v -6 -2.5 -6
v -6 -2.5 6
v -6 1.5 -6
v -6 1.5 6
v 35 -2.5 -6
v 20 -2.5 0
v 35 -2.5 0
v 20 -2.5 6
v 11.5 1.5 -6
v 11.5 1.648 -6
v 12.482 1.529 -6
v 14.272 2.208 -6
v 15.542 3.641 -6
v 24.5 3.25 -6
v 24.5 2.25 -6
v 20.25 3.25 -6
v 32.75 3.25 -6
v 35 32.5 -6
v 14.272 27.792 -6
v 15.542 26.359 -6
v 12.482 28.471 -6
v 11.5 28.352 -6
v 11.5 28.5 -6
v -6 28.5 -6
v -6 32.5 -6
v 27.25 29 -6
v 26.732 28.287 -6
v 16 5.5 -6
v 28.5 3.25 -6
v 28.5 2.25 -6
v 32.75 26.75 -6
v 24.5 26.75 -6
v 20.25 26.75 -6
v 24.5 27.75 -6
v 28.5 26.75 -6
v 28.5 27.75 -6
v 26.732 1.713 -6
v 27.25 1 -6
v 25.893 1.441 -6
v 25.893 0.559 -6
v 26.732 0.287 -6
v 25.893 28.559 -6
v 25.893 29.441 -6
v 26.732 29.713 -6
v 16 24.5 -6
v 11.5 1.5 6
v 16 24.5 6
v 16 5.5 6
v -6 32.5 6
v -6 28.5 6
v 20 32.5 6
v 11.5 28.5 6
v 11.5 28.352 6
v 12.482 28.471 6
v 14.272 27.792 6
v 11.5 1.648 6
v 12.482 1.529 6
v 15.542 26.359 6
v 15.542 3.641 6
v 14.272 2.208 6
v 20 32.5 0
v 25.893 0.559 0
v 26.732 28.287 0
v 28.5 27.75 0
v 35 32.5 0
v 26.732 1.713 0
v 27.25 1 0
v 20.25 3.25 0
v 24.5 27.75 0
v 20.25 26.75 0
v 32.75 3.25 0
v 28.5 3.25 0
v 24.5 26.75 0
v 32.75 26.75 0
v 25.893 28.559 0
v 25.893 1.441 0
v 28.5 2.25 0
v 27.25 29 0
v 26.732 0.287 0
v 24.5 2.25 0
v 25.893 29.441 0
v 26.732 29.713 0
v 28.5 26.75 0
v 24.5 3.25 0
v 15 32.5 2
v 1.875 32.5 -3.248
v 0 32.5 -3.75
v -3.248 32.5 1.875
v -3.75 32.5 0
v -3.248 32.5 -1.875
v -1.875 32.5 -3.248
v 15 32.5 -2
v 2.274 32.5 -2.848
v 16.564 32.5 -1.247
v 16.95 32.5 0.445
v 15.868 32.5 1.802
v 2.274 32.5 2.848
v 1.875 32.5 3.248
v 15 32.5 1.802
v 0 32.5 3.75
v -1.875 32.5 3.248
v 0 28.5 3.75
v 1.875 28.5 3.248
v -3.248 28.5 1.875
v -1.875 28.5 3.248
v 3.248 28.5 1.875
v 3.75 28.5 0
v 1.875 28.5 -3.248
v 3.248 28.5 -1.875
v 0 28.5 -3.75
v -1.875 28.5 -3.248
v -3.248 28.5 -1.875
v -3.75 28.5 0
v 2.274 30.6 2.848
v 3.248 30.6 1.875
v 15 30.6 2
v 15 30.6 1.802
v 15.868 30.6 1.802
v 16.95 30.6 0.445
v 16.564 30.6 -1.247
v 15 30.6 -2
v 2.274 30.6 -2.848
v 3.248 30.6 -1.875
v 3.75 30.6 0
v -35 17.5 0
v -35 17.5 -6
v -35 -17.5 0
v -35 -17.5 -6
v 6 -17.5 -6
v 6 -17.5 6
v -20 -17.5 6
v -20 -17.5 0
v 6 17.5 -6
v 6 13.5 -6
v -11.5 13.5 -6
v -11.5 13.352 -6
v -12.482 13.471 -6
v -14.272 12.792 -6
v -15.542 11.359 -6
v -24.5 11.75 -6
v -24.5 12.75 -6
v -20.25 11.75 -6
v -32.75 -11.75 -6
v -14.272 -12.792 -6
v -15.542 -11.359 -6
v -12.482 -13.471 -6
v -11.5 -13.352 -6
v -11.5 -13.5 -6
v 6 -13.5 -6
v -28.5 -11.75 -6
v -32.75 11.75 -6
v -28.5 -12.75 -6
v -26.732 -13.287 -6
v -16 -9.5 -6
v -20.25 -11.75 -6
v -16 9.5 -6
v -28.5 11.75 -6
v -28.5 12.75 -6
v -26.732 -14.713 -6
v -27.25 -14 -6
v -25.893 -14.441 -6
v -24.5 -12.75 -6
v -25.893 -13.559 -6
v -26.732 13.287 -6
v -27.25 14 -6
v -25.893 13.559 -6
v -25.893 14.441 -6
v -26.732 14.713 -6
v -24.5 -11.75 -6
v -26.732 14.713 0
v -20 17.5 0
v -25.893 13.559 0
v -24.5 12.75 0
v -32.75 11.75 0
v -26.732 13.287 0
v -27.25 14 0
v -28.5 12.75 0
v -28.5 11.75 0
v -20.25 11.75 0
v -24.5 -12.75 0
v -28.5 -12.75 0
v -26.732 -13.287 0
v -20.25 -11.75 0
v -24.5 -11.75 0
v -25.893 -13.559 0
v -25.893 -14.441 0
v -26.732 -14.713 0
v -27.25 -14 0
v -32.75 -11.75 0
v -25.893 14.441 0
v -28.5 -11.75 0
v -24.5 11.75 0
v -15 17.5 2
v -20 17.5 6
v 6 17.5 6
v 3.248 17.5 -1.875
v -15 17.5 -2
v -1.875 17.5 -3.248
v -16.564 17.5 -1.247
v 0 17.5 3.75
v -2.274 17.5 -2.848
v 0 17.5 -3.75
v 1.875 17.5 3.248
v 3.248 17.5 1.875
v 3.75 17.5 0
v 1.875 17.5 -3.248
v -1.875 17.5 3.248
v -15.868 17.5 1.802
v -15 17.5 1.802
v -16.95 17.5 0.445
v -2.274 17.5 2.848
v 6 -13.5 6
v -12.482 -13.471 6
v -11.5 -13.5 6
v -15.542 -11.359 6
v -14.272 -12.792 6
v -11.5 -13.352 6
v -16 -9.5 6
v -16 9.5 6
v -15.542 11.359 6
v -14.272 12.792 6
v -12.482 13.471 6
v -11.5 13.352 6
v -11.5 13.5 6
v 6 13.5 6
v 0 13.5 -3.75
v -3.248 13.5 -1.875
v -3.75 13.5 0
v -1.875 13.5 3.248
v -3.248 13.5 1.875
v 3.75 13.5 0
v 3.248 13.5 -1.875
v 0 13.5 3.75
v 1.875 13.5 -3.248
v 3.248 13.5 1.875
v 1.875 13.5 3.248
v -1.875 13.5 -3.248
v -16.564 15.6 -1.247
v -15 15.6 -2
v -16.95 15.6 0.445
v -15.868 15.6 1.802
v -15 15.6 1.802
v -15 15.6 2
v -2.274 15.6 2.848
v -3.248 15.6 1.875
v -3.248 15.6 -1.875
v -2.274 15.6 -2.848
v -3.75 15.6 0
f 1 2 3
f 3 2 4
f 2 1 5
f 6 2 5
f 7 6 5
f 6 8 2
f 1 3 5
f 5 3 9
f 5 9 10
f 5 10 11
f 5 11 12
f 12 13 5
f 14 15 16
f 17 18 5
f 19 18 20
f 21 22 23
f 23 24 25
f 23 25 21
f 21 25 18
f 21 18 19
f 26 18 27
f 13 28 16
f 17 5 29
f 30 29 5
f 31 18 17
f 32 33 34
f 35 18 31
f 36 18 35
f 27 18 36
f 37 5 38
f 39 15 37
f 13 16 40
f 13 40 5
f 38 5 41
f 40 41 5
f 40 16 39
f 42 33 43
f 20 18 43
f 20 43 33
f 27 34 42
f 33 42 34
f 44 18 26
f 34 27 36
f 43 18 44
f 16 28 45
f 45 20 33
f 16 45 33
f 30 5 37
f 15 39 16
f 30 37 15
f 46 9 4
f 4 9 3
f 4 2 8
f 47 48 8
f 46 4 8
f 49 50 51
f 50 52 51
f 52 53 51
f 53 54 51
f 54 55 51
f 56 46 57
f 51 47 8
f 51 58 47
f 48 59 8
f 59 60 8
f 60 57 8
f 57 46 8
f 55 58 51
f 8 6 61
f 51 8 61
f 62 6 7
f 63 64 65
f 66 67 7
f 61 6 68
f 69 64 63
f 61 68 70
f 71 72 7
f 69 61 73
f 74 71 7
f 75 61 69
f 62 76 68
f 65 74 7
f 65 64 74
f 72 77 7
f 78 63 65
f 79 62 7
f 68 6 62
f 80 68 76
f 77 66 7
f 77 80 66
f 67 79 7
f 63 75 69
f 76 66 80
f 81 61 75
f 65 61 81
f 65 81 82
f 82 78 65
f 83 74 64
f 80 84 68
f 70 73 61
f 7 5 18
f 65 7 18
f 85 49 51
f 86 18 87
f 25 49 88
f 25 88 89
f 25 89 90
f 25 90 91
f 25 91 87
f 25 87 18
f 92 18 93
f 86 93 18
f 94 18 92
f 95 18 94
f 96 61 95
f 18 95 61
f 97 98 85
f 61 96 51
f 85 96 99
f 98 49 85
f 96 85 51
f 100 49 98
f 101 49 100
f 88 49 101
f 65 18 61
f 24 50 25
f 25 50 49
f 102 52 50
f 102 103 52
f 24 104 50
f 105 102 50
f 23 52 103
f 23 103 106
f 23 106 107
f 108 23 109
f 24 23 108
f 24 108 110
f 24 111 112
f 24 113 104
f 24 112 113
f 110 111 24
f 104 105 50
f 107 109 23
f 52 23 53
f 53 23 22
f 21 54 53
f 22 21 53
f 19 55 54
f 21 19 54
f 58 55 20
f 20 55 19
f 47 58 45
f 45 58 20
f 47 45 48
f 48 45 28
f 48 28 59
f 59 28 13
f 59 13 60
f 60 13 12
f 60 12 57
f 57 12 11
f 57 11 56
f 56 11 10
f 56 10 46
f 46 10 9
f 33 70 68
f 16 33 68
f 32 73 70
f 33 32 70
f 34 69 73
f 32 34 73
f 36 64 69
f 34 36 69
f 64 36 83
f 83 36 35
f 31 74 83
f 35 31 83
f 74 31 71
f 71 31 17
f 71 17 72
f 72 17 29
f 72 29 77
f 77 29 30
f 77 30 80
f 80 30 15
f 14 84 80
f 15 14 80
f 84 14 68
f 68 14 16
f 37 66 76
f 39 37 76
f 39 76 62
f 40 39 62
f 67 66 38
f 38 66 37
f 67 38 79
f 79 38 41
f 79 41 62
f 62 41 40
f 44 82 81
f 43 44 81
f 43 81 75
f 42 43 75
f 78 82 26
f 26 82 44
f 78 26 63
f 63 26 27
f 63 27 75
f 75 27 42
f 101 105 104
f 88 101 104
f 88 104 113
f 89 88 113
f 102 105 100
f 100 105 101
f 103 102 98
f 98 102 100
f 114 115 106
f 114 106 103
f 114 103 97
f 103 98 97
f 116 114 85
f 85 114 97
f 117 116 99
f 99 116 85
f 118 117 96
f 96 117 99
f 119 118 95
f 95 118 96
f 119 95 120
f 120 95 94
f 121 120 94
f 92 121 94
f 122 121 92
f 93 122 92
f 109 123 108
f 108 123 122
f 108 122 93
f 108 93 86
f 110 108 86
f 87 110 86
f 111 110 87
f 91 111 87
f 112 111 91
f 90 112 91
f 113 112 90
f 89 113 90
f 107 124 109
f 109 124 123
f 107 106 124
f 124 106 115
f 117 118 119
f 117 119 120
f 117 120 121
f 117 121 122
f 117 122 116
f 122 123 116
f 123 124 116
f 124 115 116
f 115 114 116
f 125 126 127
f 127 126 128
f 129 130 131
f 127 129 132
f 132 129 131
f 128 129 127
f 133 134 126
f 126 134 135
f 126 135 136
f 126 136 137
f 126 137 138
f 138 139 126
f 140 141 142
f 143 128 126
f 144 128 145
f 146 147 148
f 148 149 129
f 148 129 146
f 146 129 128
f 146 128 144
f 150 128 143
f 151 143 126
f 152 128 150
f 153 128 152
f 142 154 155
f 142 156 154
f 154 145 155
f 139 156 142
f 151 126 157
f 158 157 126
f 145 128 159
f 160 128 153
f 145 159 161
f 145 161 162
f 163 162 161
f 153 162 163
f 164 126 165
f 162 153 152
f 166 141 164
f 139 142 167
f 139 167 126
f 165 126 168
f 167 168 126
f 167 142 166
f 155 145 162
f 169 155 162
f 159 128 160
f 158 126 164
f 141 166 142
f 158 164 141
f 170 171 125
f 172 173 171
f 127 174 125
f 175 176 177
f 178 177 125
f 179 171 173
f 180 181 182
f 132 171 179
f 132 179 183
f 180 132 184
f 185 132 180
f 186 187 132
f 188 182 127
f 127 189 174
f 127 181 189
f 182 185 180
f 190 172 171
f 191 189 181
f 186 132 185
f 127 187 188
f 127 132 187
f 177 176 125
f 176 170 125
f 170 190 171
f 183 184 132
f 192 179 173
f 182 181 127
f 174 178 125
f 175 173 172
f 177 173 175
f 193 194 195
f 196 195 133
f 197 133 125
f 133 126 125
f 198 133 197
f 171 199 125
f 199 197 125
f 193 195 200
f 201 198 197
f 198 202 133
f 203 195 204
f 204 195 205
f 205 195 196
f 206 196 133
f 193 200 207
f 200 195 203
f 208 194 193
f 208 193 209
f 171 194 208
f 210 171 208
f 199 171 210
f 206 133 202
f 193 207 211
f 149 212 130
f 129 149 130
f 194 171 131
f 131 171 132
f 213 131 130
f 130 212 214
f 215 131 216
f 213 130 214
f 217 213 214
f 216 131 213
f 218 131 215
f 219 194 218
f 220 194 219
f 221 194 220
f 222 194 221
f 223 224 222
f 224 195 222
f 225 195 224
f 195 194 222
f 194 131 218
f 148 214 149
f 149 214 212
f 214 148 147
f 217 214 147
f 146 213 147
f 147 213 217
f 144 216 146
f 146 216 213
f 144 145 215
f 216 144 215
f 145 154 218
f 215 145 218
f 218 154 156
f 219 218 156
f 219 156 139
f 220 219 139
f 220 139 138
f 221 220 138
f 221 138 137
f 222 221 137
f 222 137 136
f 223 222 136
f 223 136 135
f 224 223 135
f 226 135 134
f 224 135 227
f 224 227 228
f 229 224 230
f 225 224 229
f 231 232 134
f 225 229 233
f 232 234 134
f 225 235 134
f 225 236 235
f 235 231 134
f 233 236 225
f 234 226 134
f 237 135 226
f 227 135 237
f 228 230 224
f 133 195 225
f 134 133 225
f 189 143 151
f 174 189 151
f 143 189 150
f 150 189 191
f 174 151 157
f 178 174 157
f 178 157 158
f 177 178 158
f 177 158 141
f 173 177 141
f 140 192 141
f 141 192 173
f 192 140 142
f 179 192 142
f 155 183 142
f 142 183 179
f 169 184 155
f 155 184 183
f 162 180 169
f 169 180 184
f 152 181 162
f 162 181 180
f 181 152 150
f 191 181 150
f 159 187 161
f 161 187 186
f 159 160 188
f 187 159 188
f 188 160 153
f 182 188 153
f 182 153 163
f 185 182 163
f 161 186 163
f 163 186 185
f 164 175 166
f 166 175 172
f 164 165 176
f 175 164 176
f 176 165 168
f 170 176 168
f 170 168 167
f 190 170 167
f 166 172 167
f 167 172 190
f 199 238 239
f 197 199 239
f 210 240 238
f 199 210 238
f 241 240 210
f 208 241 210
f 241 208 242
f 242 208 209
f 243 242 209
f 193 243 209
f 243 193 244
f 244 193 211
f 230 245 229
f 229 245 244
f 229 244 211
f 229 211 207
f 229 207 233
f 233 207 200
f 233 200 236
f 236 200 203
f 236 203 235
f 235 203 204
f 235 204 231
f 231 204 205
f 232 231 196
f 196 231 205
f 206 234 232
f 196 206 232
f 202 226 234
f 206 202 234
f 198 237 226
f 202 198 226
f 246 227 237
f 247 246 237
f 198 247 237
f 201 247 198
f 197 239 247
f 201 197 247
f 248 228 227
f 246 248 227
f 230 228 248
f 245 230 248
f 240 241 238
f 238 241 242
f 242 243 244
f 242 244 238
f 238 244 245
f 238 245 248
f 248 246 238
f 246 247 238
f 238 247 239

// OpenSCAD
// file: servo_arm.scad
//servo_arm();

module servo_arm(body_r = 7.5/2, arm_r1 = 6/2, arm_r2 = 4/2, arm_len = 15, arm_t = 2, body_t = 5) {
	cylinder(r = body_r, h = body_t);
	
	linear_extrude(height = arm_t) {
		circle(r = arm_r1);
		translate([0,arm_len,0]) circle(r = arm_r2);
		polygon(points = [ [-arm_r1, 0], [arm_r1, 0], [arm_r2, arm_len], [-arm_r2, arm_len] ]);
	}
}
// file: servo.scad
// 3dof quad
//
// servo



module servo(a = 30, b = 23, c = 27, d = 12, e = 33, f = 16, flange_thickness = 2, top_cap_pct = 0.5) {
	rem_height = c - flange_thickness - f;
	top_cap_height = rem_height * top_cap_pct;
	roundel_height = rem_height * (1.0 - top_cap_pct);	

	translate([0, -d/2, 0]) union() {
		translate([0,0,flange_thickness/2]) cube([d, e, flange_thickness], center = true);
		translate([0,0,-f/2]) cube([d, b, f], center = true);
		translate([0,0,flange_thickness + top_cap_height/2]) cube([d, b, top_cap_height], center = true);
		translate([0, -(d), -8]) cube ([3, 1, f], center = true);
		translate([0, d, -8]) cube ([3, 1, f], center = true);
		translate([0,b/2 - d/2,flange_thickness + top_cap_height]) union() {
			cylinder(r = d/2, h = roundel_height);
			translate([0,0,roundel_height]) cylinder(r = 3, h = 3);
		}
	}
}

//color("blue") servo();
// main file
// 3dof quad 
//
// coxa

include <servo.scad>
include <servo_arm.scad>

module coxa(servo_height = 27, servo_clearance = 7) {
	arm_thick = 4;
	servo_width = 12;
	flange_length = 3;
	base_thick = 4;
	root_radius = 4;

	fork_width = servo_width + flange_length + servo_clearance + base_thick;
	fork_height = arm_thick * 2 + servo_height;
	
	servo_cog_offset = 6;

	translate([fork_width/2 - servo_cog_offset, 0, 0]) union() {
		difference() {
			cube([fork_width, fork_height, 12], center = true);
			translate([-root_radius/2 - base_thick/2 - 1, 0, 0]) cube([1 + servo_width + flange_length + servo_clearance - root_radius, servo_height, 13], center = true);
			translate([-base_thick/2, 0, 0]) cube([servo_width + flange_length + servo_clearance, servo_height-2*root_radius, 13], center = true);
			translate([5, -9.5, 0]) cylinder(r = root_radius, h = 13, center = true);	
			translate([5, 9.5, 0]) cylinder(r = root_radius, h = 13, center = true);	
			color("white") translate([servo_cog_offset - fork_width/2, 0.1 + fork_height/2, 0]) rotate([90, 90, 0]) servo_arm();
		}

		translate([fork_width/2 + 15/2, 0, -3]) {
			difference() {	
				cube([15, fork_height, 6], center = true);
				translate([-1, 0, 0]) cube([12.5, 23.5, 7], center = true);
				for(i = [-1, 1]) {
					translate([-1, i * 28/2, 0]) cylinder(r=.75, h=20, center = true);
				}
				translate([-1, 12.25, 0]) cube([4, 1, 25], center = true);
				translate([-1, -12.25, 0]) cube([4, 1, 25], center = true);
			}
		}
	}

}

translate([0,15,0]) coxa(); 
scale([-1, 1, 1]) coxa();
